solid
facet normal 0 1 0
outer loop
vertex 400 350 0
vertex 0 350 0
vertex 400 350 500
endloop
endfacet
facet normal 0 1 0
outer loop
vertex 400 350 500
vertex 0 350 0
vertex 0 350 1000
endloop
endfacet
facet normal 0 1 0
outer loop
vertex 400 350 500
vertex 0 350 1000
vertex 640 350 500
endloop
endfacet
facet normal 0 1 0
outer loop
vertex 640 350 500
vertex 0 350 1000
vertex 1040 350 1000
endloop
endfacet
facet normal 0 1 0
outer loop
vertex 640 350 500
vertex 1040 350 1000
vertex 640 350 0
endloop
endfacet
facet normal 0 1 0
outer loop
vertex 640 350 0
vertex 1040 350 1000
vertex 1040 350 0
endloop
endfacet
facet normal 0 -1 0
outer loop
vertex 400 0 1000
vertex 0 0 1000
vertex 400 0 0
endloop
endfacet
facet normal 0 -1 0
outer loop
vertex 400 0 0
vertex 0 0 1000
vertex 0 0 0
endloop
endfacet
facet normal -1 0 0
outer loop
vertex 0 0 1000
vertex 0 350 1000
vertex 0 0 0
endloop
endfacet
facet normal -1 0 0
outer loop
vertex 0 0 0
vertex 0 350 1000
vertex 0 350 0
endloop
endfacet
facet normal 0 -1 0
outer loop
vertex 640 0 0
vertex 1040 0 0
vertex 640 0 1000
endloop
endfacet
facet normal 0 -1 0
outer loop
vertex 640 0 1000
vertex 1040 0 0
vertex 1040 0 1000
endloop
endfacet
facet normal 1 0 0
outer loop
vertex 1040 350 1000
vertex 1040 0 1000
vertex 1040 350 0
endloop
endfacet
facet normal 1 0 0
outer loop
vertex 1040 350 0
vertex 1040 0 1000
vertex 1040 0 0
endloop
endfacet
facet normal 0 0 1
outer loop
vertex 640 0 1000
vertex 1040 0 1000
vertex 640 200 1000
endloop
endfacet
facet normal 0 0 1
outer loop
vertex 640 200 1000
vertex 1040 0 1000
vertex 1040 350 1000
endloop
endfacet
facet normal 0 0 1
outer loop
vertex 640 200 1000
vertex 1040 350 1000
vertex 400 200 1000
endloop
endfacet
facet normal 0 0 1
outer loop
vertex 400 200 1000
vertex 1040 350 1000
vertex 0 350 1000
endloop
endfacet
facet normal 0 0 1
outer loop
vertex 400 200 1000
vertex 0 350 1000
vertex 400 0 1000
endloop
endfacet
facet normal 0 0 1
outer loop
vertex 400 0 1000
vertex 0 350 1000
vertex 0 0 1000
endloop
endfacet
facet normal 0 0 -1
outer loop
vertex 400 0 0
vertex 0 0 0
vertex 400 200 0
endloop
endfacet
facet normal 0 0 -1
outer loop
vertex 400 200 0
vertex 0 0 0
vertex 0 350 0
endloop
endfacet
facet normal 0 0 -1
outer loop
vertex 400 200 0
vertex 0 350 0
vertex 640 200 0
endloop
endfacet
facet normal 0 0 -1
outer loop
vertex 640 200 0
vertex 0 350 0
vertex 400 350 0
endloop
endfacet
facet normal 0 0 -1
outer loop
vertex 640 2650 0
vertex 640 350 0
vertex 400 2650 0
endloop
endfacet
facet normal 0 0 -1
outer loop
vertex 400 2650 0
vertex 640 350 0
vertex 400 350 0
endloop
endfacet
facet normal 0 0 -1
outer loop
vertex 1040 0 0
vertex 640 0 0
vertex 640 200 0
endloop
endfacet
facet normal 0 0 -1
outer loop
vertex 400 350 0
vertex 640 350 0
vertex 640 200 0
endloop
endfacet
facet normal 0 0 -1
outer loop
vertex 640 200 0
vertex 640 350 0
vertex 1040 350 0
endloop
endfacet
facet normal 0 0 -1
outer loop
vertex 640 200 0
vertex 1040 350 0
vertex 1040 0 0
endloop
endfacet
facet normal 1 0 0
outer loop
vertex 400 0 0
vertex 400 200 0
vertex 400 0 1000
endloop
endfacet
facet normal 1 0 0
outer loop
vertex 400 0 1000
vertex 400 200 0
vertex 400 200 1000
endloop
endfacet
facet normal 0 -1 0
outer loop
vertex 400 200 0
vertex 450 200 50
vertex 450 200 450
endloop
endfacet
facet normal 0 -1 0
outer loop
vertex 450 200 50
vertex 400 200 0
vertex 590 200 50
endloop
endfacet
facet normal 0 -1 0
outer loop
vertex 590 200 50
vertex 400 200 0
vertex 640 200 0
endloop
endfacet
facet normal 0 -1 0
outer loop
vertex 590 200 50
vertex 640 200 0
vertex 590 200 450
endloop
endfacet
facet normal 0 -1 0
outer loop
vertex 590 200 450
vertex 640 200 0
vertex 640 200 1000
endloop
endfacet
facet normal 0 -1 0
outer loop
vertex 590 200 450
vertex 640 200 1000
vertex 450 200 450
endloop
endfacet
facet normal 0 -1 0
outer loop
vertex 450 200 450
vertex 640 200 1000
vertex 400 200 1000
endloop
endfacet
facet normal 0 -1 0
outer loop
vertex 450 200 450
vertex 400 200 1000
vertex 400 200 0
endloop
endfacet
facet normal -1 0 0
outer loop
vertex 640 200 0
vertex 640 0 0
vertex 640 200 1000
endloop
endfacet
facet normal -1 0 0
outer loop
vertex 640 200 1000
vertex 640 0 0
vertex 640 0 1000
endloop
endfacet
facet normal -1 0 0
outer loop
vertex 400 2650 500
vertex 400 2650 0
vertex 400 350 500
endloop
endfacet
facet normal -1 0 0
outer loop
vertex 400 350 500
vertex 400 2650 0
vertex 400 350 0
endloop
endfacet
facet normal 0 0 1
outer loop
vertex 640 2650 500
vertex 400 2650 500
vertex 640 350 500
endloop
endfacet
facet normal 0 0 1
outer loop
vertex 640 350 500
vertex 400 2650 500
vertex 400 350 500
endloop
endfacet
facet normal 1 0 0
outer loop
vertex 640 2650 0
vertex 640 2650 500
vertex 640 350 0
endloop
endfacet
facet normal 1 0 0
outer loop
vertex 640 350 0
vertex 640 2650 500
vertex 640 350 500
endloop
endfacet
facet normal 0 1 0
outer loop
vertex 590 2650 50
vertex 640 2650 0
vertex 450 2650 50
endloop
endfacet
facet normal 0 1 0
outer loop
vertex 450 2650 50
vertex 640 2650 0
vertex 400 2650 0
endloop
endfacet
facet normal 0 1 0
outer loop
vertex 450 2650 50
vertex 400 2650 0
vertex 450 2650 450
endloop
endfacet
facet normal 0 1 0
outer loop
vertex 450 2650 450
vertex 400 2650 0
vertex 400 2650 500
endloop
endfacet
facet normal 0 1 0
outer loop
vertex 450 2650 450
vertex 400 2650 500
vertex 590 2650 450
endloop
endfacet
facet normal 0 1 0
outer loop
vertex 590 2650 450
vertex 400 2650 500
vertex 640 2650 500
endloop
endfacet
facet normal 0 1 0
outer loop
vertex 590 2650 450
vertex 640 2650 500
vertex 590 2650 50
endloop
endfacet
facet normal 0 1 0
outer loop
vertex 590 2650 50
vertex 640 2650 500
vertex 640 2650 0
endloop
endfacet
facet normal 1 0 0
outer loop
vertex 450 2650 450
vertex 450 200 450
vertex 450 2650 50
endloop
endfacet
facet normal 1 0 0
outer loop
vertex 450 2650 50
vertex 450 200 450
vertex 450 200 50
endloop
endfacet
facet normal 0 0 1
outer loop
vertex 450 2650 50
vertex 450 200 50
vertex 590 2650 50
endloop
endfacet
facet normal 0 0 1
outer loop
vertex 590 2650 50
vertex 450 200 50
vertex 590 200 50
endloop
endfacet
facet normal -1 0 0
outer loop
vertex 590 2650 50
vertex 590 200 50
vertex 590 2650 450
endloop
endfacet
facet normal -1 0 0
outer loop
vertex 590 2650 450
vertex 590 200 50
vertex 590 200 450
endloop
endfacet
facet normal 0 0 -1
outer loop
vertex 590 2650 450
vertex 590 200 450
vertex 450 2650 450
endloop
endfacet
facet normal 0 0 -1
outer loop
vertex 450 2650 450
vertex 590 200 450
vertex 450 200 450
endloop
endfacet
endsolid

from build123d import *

# Parameters (mm, degrees)
SKIZZE1_W                       = 1040
SKIZZE1_H                       = 350
AUFSATZ_LINEAR_AUSTRAGEN1_DEPTH = 1000
SKIZZE2_W                       = 240
SKIZZE2_H                       = 200
SCHNITT_LINEAR_AUSTRAGEN1_DEPTH = 1485.621163799
SKIZZE3_W                       = 240
SKIZZE3_H                       = 500
AUFSATZ_LINEAR_AUSTRAGEN2_DEPTH = 2300
SKIZZE4_W                       = 140
SKIZZE4_H                       = 400
SCHNITT_LINEAR_AUSTRAGEN2_DEPTH = 3018.300117655


with BuildPart() as part:
    # Skizze1 → Aufsatz-Linear austragen1 (new body)
    with BuildSketch(Plane.XY):
        with Locations((520, 175)):
            Rectangle(SKIZZE1_W, SKIZZE1_H)
    extrude(amount=AUFSATZ_LINEAR_AUSTRAGEN1_DEPTH)

    # Skizze2 → Schnitt-Linear austragen1 (cut, through all)
    with BuildSketch(Plane.XY.offset(1000)):
        with Locations((520, 100)):
            Rectangle(SKIZZE2_W, SKIZZE2_H)
    extrude(amount=-SCHNITT_LINEAR_AUSTRAGEN1_DEPTH, mode=Mode.SUBTRACT)

    # Skizze3 → Aufsatz-Linear austragen2 (add)
    with BuildSketch(Plane(origin=(0, 350, 0), x_dir=(1, 0, 0), z_dir=(0, 1, 0))):
        with Locations((520, -250)):
            Rectangle(SKIZZE3_W, SKIZZE3_H)
    extrude(amount=AUFSATZ_LINEAR_AUSTRAGEN2_DEPTH)

    # Skizze4 → Schnitt-Linear austragen2 (cut, through all)
    with BuildSketch(Plane(origin=(0, 2650, 0), x_dir=(1, 0, 0), z_dir=(0, 1, 0))):
        with Locations((520, -250)):
            Rectangle(SKIZZE4_W, SKIZZE4_H)
    extrude(amount=-SCHNITT_LINEAR_AUSTRAGEN2_DEPTH, mode=Mode.SUBTRACT)


solid = part.part
